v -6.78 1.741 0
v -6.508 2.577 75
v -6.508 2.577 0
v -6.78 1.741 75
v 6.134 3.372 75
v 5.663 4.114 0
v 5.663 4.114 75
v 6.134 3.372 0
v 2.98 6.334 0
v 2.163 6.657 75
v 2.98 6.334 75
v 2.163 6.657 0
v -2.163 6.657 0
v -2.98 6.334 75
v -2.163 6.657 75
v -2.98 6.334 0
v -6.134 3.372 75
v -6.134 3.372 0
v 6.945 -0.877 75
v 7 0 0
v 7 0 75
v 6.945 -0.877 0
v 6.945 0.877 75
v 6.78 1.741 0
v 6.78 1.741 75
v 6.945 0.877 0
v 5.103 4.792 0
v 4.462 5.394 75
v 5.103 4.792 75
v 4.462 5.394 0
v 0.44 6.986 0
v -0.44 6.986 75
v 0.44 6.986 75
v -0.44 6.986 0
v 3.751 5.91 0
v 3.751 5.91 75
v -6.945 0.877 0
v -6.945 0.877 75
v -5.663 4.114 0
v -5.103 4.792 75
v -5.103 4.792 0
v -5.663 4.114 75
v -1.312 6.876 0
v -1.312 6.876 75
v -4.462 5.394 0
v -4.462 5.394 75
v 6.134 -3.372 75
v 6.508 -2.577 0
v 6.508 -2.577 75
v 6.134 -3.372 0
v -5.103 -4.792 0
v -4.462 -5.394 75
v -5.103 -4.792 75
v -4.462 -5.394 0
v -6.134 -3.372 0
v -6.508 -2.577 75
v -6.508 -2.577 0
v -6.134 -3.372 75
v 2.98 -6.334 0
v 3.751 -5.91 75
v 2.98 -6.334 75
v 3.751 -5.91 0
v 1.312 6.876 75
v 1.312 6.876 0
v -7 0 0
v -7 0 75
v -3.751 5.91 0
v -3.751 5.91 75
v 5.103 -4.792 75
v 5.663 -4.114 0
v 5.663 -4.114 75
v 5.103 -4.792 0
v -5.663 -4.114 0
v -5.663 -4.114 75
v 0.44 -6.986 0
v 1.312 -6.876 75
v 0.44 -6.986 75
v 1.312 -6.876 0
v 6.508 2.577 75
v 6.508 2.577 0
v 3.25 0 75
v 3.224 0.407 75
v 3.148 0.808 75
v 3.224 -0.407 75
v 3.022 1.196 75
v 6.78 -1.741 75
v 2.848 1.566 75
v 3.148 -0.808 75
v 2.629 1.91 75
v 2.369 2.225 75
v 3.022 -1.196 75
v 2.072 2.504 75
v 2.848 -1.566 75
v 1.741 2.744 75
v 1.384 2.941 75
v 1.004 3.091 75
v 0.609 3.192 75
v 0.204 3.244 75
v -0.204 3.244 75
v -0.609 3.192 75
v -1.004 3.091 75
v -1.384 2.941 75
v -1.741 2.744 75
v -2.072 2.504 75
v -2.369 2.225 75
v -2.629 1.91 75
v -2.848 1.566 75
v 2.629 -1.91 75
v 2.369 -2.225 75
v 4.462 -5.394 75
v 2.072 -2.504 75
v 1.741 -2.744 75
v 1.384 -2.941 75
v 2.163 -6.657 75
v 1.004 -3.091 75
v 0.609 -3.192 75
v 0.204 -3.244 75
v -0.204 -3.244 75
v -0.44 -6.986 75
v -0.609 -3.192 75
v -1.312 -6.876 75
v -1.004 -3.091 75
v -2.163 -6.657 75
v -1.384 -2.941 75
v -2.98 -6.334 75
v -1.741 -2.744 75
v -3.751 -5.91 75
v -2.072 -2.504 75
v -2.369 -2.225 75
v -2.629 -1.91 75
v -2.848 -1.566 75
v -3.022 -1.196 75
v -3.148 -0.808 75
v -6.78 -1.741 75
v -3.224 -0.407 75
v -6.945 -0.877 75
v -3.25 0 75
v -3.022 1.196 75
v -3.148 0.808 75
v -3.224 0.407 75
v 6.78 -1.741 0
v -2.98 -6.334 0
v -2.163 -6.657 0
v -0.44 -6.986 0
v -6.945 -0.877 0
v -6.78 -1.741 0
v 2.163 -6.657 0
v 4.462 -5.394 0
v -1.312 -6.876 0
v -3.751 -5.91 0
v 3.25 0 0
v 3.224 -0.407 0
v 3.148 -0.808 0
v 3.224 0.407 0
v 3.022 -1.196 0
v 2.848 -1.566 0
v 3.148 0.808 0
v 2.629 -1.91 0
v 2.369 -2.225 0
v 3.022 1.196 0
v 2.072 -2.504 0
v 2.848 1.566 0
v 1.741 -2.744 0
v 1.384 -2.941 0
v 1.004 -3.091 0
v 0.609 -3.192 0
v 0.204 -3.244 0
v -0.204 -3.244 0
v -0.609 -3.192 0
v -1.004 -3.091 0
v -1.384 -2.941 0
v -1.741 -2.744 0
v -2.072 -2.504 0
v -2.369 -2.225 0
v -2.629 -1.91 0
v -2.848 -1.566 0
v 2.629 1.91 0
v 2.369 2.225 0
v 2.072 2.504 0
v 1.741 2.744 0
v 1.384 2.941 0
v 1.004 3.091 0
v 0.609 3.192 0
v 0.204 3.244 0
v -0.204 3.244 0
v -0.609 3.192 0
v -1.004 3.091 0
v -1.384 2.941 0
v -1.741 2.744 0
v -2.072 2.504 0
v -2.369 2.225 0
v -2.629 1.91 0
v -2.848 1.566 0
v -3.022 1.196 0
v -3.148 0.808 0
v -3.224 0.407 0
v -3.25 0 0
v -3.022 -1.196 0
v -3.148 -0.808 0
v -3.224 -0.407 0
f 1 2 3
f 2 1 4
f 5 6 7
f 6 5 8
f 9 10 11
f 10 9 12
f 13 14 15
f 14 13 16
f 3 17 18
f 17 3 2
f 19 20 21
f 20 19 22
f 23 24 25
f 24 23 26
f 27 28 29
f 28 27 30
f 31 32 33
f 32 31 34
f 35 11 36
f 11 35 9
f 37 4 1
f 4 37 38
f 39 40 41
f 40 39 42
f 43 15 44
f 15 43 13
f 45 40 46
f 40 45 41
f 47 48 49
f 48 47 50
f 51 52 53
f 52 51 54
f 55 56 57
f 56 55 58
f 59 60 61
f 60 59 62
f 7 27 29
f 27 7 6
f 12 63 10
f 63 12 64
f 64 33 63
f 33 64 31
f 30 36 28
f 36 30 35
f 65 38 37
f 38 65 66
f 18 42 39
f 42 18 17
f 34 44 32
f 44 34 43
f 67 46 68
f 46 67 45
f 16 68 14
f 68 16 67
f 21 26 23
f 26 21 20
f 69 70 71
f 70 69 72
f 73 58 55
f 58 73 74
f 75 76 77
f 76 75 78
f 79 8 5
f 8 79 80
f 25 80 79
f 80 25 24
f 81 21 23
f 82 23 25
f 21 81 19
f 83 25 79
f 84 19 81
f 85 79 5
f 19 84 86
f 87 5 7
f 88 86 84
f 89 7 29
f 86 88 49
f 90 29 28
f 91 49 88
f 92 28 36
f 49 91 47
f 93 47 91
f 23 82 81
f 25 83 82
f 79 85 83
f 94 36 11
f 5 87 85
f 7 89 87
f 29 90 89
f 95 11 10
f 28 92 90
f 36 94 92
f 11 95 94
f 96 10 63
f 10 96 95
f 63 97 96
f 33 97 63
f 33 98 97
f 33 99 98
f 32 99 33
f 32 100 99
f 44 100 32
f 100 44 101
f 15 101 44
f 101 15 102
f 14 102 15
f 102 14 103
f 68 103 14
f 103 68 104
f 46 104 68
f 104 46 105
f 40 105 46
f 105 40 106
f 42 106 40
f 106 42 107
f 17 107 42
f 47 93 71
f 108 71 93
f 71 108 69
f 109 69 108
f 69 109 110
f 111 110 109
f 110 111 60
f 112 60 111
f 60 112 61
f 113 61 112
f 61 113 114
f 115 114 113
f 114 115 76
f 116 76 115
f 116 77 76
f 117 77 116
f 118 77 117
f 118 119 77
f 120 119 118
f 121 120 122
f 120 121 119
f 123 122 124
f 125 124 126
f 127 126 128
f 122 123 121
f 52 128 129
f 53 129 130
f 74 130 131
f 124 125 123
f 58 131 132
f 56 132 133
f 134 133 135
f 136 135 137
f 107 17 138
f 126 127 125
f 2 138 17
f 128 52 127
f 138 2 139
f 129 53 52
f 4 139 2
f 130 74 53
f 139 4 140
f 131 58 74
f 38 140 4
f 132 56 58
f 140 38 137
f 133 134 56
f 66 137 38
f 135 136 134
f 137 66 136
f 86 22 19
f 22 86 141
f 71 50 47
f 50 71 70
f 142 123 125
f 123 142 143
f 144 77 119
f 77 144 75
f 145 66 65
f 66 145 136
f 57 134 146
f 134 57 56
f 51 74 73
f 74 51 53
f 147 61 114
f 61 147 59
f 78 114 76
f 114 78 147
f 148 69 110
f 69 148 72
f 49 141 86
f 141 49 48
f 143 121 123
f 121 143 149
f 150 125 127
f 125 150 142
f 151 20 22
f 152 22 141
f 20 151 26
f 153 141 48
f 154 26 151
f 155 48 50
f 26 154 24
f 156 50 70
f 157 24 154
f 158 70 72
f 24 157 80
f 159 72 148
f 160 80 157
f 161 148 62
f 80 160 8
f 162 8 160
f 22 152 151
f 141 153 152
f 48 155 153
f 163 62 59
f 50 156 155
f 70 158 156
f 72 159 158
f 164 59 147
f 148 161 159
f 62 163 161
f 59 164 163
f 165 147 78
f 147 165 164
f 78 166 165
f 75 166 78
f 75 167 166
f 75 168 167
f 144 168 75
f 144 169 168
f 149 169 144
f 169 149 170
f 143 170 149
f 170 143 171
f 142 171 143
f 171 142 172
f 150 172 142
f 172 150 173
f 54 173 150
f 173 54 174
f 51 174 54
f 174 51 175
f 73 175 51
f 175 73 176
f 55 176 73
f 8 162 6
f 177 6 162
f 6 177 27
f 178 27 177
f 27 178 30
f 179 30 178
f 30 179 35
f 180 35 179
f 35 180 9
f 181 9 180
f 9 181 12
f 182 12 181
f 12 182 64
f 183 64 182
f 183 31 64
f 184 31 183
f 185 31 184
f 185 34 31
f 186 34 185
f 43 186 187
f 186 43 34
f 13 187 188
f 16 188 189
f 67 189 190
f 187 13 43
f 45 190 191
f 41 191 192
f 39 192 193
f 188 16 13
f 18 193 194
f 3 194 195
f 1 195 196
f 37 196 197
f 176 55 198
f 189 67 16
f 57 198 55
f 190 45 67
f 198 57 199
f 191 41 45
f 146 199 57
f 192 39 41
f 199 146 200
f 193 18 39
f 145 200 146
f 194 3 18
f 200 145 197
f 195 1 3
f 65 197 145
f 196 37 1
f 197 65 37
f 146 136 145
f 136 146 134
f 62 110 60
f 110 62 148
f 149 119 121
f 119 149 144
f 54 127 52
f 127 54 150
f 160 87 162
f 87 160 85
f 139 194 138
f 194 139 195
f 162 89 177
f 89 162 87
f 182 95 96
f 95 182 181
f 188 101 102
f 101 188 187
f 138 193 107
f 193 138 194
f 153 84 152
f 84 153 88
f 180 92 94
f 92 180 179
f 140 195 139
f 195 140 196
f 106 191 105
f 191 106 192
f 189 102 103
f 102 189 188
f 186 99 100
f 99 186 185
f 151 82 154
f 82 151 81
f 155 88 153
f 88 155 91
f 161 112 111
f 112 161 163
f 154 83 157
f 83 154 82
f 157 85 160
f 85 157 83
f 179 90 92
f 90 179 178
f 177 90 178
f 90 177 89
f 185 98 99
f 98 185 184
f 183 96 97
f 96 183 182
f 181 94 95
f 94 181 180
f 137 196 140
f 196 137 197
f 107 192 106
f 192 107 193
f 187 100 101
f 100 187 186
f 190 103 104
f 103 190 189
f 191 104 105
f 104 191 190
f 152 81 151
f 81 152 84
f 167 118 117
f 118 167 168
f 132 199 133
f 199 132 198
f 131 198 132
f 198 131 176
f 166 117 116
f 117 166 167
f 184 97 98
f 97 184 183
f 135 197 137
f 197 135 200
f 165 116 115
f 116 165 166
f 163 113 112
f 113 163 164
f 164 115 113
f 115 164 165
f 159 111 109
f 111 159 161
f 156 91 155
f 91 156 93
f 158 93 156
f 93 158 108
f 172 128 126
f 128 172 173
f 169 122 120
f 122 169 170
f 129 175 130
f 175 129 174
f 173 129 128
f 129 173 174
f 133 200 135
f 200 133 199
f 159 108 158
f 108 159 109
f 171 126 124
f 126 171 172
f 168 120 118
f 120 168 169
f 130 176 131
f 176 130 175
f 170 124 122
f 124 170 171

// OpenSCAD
$fn = 50;


difference() {
	union() {
		cylinder(h = 75, r = 7.0000000000);
	}
	union() {
		cylinder(h = 75, r = 3.2500000000);
		cylinder(h = 75, r = 3.2500000000);
		cylinder(h = 75, r = 1.8000000000);
		cylinder(h = 75, r = 1.8000000000);
		cylinder(h = 75, r = 1.8000000000);
		cylinder(h = 75, r = 1.8000000000);
		cylinder(h = 75, r = 1.8000000000);
		cylinder(h = 75, r = 1.8000000000);
	}
}
